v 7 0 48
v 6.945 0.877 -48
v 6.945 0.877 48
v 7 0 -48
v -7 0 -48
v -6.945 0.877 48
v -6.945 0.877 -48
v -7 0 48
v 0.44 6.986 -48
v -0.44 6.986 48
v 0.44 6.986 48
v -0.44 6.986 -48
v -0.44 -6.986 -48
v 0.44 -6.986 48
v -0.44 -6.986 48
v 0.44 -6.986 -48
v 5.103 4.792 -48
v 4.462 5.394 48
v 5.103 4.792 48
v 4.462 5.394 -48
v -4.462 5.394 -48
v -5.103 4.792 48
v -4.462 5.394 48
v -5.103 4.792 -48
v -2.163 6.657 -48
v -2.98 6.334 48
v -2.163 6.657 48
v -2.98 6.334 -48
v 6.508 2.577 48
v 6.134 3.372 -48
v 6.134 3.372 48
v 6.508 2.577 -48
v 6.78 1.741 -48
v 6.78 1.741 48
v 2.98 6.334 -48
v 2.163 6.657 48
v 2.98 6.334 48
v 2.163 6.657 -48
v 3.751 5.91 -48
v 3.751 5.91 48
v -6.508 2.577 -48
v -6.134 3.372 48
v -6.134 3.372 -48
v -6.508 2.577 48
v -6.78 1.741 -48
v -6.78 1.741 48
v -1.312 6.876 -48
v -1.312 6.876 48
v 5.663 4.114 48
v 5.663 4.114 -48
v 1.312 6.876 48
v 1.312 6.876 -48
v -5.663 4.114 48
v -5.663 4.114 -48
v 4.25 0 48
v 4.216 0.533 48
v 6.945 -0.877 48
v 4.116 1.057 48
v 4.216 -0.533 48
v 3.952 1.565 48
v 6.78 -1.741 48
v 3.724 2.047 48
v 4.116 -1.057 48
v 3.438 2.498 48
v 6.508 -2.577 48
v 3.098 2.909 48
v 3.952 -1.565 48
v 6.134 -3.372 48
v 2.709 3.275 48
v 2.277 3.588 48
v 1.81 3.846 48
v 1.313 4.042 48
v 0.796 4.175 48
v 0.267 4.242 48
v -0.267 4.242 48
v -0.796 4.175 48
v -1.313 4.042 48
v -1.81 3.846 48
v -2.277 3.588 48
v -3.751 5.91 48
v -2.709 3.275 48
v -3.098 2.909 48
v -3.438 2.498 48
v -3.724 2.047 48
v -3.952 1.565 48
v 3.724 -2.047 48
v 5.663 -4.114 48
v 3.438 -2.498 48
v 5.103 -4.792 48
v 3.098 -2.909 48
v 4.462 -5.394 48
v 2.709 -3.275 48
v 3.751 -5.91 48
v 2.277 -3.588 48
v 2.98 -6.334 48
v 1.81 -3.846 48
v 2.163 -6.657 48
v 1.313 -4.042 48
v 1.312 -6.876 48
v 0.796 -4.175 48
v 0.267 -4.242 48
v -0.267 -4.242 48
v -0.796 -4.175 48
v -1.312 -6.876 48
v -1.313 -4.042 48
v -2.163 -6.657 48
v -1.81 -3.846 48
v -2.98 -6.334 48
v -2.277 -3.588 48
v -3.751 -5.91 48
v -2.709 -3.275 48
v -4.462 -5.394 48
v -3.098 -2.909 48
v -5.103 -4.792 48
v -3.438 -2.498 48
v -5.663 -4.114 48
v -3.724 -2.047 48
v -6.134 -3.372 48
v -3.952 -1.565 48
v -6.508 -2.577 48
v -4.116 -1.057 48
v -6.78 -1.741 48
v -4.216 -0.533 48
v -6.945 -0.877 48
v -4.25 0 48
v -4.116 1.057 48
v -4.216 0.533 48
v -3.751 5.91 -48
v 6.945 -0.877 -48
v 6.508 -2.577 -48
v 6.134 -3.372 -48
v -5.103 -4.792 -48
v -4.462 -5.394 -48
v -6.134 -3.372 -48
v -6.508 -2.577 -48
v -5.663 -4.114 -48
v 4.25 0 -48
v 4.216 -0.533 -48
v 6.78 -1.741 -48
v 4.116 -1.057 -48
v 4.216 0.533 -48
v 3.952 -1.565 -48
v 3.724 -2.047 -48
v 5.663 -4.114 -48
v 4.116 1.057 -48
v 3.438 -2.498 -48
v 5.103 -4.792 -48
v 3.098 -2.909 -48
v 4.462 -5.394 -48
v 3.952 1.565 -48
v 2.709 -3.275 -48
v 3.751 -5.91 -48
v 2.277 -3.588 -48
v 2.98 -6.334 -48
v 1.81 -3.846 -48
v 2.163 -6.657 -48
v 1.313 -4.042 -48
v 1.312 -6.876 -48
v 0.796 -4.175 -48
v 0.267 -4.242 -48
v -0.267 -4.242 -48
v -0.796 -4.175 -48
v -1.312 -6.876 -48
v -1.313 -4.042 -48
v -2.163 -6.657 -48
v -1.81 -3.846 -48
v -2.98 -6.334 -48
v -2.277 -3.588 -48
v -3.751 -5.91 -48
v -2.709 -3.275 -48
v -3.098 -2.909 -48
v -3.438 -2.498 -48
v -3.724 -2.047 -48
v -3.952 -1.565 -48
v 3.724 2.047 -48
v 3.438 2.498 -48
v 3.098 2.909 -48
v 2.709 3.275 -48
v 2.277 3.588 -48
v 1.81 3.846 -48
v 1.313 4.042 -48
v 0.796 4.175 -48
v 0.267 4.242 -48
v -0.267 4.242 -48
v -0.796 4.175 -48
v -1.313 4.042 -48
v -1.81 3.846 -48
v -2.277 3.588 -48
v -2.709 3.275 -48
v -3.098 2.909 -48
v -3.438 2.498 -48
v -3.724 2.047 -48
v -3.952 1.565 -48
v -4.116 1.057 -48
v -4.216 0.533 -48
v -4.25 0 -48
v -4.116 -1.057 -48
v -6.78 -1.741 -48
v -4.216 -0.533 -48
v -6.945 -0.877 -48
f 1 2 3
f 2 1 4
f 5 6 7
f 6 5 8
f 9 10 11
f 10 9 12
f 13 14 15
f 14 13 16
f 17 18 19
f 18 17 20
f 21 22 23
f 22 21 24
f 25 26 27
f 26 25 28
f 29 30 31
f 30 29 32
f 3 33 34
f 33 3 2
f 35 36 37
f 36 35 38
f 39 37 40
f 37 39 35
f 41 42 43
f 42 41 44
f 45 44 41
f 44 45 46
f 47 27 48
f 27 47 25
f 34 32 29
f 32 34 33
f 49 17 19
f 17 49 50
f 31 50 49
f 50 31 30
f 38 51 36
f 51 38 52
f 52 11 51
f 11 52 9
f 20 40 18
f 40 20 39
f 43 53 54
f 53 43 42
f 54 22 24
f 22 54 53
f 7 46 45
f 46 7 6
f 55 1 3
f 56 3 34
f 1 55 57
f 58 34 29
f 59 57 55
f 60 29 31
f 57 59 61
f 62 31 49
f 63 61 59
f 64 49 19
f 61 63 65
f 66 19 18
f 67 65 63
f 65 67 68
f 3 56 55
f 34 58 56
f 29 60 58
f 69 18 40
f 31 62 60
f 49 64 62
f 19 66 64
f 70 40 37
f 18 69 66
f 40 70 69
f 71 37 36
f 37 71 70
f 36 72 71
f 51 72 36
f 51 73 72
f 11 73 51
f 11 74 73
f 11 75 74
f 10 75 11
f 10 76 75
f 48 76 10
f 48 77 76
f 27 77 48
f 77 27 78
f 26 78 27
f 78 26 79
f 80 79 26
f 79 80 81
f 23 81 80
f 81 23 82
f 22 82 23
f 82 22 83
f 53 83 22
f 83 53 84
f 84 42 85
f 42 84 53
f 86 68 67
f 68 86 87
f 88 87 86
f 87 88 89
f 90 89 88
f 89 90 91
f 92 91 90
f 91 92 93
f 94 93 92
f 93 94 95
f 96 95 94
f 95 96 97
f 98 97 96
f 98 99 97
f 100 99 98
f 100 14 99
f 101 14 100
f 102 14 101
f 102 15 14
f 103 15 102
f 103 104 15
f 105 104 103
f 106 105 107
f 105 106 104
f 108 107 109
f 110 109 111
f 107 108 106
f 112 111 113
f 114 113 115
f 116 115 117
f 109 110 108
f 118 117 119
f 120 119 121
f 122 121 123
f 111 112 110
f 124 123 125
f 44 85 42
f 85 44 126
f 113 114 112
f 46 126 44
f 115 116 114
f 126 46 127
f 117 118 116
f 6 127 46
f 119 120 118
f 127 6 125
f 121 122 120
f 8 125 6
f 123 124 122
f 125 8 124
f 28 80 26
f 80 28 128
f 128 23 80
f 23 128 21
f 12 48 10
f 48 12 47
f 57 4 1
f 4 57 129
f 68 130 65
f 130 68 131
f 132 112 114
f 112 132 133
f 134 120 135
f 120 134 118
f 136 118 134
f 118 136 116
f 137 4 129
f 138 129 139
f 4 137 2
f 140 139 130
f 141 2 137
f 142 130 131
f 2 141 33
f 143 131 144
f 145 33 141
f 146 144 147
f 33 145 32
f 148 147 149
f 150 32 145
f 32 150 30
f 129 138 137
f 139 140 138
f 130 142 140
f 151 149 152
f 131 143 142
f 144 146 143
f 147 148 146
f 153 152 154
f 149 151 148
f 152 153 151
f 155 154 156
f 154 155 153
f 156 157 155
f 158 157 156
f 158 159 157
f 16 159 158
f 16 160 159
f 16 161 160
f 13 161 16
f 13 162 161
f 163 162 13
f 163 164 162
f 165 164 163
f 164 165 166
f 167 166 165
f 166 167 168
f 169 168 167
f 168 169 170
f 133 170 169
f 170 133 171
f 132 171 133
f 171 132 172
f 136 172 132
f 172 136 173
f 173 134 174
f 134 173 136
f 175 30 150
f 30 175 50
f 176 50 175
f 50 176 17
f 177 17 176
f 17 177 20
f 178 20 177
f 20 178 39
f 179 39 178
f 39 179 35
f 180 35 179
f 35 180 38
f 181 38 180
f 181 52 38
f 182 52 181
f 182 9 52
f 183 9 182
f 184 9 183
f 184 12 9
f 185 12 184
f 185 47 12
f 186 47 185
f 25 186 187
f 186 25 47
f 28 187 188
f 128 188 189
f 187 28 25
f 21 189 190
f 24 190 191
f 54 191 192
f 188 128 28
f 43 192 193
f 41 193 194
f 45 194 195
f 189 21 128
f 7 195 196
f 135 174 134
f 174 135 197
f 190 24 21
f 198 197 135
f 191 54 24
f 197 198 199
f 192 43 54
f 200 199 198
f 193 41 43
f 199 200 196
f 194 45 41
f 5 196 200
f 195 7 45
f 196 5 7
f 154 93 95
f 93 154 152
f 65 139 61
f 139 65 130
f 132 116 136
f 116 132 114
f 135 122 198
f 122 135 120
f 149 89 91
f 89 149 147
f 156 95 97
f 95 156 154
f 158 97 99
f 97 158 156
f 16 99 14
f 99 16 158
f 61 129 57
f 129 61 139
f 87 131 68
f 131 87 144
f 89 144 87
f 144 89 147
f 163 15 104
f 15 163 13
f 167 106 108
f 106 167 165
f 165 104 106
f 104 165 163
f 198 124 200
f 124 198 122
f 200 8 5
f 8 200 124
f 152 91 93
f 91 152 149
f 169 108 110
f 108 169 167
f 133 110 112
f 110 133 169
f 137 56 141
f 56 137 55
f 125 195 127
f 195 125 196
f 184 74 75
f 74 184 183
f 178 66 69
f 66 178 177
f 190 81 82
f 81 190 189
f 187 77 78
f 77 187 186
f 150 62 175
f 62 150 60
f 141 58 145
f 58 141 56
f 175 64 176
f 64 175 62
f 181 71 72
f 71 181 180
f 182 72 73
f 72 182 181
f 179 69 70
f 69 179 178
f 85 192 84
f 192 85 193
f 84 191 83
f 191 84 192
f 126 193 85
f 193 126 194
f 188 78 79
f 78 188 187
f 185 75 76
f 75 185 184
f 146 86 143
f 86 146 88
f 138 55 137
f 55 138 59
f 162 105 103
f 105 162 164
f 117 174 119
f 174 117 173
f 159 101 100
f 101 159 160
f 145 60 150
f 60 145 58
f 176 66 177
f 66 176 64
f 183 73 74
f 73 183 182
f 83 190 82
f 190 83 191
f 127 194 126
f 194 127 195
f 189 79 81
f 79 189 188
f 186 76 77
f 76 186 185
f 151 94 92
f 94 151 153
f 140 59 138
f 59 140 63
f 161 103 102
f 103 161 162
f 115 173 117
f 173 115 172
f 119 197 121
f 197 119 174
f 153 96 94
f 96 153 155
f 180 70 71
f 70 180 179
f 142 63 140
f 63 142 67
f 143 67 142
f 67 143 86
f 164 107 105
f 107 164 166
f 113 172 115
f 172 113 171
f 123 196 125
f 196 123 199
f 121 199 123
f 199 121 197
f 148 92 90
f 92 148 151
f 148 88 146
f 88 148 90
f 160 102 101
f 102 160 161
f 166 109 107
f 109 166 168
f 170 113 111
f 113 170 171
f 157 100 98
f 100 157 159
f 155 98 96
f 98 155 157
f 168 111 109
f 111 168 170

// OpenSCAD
$fn = 50;


difference() {
	union() {
		translate(v = [0, 0, -48.0000000000]) {
			cylinder(h = 96, r = 7.0000000000);
		}
	}
	union() {
		translate(v = [0, 0, -100.0000000000]) {
			cylinder(h = 200, r = 4.2500000000);
		}
	}
}
